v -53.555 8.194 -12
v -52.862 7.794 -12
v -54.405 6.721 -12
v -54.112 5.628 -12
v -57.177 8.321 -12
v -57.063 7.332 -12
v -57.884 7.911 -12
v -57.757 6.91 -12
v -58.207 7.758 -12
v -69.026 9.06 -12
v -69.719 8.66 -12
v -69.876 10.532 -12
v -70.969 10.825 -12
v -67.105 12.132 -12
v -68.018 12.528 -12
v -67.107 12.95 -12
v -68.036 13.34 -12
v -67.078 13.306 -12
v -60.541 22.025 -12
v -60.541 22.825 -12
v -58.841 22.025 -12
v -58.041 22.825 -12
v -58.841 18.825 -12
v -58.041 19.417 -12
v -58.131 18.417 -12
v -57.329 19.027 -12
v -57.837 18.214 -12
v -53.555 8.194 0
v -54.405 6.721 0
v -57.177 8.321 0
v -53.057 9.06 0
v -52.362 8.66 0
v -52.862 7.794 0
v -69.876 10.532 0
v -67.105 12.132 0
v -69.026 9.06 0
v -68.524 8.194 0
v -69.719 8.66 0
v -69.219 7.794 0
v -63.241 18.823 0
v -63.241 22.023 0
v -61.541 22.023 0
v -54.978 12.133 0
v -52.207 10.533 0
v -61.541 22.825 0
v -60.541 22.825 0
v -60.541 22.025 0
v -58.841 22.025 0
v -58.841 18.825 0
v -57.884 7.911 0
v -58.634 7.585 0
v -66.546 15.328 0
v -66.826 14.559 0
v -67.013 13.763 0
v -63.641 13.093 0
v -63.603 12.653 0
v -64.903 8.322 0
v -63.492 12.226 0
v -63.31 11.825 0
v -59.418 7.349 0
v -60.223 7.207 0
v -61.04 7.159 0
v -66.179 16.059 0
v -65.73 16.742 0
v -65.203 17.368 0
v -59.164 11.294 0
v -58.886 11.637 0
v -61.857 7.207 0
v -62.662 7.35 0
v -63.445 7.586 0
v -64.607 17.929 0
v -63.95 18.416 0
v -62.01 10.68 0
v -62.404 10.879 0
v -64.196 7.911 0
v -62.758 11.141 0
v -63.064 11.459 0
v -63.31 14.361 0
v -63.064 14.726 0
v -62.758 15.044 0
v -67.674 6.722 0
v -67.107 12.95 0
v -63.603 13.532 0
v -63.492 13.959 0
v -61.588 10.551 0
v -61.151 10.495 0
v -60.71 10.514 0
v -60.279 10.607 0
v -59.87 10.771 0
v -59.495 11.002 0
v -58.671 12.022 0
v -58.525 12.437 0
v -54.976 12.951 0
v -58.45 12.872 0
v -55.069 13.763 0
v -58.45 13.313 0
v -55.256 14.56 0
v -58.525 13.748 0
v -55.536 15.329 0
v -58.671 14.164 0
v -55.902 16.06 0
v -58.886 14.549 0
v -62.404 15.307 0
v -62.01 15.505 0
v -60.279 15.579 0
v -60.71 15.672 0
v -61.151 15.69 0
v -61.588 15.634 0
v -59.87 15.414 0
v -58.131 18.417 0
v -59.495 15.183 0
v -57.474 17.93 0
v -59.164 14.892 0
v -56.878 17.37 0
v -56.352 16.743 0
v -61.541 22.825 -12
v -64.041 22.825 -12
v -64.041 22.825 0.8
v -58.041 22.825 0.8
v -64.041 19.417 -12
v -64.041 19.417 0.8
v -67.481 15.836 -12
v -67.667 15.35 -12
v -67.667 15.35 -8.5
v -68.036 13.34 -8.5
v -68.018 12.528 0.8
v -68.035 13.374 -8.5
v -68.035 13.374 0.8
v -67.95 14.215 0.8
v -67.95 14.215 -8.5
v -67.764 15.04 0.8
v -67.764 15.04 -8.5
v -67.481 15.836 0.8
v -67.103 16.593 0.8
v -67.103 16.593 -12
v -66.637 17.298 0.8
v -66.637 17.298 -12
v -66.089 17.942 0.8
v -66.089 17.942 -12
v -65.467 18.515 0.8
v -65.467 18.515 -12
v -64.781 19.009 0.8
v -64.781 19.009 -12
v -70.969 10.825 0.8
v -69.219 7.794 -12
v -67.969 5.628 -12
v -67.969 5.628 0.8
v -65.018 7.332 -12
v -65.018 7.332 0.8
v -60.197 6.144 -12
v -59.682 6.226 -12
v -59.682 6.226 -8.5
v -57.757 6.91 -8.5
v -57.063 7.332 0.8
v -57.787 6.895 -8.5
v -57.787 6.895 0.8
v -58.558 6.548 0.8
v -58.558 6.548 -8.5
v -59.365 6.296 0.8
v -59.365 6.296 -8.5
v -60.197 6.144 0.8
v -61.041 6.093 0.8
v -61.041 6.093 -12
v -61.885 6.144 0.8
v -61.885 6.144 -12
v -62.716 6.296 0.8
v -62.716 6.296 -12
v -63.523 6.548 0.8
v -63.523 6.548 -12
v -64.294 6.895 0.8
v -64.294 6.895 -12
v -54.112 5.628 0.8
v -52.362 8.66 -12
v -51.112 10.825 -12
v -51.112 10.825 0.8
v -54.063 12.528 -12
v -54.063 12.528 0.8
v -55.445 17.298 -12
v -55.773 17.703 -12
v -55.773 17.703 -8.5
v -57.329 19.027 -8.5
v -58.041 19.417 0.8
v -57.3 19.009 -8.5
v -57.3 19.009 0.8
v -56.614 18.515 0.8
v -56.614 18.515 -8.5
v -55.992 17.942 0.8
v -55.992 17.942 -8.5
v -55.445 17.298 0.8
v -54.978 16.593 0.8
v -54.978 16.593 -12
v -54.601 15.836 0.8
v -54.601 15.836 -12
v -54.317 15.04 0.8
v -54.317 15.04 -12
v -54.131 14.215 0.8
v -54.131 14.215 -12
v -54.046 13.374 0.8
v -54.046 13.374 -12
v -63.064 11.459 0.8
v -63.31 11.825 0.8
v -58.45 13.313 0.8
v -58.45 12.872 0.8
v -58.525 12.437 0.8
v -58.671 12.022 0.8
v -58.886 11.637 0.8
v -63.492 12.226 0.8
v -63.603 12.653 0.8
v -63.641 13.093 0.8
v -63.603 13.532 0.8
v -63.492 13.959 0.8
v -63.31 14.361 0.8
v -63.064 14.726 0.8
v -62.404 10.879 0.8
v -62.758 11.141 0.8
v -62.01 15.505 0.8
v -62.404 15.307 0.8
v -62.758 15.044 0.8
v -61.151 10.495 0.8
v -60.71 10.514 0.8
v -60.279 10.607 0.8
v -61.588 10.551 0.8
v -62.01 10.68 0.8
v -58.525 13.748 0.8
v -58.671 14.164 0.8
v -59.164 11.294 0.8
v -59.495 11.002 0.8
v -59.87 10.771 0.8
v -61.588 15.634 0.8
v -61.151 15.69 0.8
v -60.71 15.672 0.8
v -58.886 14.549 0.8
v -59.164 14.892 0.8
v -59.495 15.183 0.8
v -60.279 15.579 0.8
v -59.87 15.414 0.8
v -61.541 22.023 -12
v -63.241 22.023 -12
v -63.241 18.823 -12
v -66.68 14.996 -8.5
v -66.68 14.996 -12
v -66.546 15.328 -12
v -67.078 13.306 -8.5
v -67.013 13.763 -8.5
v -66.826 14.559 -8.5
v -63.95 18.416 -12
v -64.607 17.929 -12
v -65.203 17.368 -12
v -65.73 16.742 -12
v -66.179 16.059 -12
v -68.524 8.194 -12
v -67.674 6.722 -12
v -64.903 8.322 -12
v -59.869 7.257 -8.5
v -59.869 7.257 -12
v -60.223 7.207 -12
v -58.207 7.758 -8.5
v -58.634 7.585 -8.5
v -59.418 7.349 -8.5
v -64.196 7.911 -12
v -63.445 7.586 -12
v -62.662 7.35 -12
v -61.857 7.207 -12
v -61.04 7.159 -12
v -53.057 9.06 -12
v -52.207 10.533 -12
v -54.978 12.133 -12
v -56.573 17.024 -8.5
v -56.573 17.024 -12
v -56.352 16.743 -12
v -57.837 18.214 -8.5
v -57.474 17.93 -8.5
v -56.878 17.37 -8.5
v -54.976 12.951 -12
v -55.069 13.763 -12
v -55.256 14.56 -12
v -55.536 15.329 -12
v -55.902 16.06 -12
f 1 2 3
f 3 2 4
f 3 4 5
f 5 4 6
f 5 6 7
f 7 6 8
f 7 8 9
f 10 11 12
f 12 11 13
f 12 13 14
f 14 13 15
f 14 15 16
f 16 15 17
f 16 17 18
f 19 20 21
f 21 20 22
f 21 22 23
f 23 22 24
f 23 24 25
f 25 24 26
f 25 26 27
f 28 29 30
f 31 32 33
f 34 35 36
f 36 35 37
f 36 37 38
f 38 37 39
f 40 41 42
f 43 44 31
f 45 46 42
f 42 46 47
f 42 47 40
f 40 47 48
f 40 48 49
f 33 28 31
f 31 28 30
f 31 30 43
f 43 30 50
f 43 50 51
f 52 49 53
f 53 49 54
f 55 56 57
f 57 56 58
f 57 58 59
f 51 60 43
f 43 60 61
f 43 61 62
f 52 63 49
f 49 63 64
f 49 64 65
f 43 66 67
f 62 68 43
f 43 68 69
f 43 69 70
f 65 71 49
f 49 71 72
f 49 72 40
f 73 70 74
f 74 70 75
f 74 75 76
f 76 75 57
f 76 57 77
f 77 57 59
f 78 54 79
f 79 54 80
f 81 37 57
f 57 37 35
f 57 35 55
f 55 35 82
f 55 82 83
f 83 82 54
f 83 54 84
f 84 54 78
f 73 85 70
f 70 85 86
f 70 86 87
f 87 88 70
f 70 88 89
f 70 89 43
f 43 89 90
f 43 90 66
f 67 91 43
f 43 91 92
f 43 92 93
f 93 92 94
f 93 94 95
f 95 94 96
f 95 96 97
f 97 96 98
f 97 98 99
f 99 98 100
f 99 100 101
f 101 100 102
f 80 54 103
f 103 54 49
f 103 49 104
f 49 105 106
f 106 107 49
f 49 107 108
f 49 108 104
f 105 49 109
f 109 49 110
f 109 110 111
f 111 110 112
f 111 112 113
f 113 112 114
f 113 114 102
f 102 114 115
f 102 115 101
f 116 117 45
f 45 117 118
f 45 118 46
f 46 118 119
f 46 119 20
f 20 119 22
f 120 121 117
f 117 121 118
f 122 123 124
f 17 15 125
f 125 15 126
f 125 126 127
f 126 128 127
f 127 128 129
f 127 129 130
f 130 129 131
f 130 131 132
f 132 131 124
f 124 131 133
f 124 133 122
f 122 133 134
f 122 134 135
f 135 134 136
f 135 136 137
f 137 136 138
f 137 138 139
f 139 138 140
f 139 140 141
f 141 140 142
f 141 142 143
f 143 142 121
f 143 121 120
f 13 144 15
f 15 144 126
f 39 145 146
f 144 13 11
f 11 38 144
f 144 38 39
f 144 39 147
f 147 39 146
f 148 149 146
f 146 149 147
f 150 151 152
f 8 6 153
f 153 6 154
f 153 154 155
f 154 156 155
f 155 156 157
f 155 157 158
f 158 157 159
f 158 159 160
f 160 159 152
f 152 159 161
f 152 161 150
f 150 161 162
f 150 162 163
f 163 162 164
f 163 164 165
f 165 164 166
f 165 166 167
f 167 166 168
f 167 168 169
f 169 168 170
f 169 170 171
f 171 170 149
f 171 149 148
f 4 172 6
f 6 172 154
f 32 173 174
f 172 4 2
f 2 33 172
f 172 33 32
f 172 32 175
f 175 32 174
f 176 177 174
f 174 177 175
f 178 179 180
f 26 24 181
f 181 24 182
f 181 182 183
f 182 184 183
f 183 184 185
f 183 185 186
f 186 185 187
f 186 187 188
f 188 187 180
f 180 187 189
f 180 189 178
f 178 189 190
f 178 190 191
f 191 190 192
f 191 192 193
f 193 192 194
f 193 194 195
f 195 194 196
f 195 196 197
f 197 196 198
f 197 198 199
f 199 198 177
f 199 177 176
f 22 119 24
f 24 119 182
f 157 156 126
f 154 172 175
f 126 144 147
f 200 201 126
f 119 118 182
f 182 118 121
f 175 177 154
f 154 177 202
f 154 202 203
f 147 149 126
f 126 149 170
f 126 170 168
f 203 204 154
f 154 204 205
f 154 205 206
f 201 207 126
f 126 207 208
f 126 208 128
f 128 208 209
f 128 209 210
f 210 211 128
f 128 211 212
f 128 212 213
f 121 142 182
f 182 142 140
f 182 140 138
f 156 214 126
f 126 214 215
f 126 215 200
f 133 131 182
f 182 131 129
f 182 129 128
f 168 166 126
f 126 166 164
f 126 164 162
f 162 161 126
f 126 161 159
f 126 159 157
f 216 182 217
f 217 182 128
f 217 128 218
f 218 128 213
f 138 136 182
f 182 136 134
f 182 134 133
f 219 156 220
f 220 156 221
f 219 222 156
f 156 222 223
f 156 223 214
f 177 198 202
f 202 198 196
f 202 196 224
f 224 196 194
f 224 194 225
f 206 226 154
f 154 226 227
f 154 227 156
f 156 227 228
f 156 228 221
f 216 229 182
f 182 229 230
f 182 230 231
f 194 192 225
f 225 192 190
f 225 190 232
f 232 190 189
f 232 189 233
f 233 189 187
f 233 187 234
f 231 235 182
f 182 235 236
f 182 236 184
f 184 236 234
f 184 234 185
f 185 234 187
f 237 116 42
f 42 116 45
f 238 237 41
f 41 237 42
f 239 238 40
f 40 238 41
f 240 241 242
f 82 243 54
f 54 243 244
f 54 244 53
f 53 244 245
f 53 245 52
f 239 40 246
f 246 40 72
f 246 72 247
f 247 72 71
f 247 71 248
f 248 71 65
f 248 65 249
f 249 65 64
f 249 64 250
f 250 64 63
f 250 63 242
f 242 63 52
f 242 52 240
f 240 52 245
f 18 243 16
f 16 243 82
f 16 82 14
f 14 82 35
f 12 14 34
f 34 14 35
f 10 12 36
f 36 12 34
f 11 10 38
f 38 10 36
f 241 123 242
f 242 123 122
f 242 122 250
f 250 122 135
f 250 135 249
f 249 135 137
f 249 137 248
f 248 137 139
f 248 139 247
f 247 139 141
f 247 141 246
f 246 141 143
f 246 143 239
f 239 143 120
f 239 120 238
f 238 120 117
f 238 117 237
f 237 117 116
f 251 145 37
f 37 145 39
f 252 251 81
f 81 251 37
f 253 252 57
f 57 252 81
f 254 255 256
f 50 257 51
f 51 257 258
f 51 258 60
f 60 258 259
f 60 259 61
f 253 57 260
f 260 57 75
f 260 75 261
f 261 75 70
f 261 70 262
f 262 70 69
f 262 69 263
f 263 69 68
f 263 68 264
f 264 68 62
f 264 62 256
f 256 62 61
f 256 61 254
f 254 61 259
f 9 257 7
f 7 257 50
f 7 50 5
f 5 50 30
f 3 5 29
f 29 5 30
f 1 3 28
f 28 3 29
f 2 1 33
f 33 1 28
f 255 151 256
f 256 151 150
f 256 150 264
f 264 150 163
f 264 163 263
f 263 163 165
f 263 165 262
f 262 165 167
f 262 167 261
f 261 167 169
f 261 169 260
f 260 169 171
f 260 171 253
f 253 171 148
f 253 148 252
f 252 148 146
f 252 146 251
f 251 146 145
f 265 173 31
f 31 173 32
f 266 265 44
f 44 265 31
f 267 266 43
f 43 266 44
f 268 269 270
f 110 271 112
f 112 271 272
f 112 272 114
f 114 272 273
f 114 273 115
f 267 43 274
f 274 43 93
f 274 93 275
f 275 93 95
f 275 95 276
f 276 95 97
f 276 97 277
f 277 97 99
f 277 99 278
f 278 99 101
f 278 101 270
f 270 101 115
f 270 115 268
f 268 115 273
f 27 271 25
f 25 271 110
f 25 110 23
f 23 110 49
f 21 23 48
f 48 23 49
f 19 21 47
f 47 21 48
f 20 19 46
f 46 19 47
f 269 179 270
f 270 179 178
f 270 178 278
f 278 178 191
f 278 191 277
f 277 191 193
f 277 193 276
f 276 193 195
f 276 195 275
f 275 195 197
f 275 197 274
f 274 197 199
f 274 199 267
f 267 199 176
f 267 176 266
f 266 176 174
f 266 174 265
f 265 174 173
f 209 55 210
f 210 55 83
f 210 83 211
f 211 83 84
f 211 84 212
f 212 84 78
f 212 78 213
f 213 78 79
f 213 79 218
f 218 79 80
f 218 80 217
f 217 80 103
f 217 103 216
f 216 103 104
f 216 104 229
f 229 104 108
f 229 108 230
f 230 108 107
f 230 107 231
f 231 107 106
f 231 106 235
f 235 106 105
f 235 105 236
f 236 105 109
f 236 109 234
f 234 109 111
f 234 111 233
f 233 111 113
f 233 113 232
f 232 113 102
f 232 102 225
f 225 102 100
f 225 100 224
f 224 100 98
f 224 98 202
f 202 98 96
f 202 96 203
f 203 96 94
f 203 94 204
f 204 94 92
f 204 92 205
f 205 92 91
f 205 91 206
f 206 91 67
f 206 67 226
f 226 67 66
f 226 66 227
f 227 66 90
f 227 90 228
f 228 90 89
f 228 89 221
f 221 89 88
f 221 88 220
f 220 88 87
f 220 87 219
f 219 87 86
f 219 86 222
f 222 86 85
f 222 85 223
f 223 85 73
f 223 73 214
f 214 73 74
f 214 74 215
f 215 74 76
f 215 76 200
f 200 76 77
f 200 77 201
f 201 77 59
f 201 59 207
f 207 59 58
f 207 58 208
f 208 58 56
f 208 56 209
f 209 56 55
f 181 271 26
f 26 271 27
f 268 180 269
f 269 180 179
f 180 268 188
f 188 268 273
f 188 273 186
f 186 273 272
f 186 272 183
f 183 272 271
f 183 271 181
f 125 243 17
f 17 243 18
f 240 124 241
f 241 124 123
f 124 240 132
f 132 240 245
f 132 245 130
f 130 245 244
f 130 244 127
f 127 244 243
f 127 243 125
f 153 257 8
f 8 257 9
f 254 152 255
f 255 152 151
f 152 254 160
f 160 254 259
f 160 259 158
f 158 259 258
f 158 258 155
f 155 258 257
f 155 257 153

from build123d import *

# Parameters (mm, degrees)
SALIENTE_EXTRUIR1_DEPTH = 0.8
SALIENTE_EXTRUIR2_START = 12
SALIENTE_EXTRUIR2_DEPTH = 12
CROQUIS3_R              = 2.6
CORTAR_EXTRUIR1_DEPTH   = 0.8
CORTAR_EXTRUIR2_DEPTH   = 3.5


with BuildPart() as part:
    # Croquis1 → Saliente-Extruir1 (new body)
    with BuildSketch(Plane.XY):
        with BuildLine():
            Line((-64.04061015, 19.417127137), (-64.04061015, 22.824622624))
            Line((-64.04061015, 22.824622624), (-58.04061015, 22.824622624))
            Line((-58.04061015, 22.824622624), (-58.04061015, 19.417127137))
            ThreePointArc((-58.04061015, 19.417127137), (-54.978432324, 16.592571816), (-54.063384575, 12.528370368))
            Line((-54.063384575, 12.528370368), (-51.11240692, 10.824622624))
            Line((-51.11240692, 10.824622624), (-54.11240692, 5.628470201))
            Line((-54.11240692, 5.628470201), (-57.063384575, 7.332217945))
            ThreePointArc((-57.063384575, 7.332217945), (-61.04061015, 6.092571816), (-65.017835725, 7.332217945))
            Line((-65.017835725, 7.332217945), (-67.96881338, 5.628470201))
            Line((-67.96881338, 5.628470201), (-70.96881338, 10.824622624))
            Line((-70.96881338, 10.824622624), (-68.017835725, 12.528370368))
            ThreePointArc((-68.017835725, 12.528370368), (-67.102787977, 16.592571816), (-64.04061015, 19.417127137))
        make_face()
    extrude(amount=SALIENTE_EXTRUIR1_DEPTH)

    # Croquis2 → Saliente-Extruir2 (add)
    with BuildSketch(Plane(origin=(0, 0, 0), x_dir=(-1, 0, 0), z_dir=(0, 0, -1)).offset(SALIENTE_EXTRUIR2_START)):
        with BuildLine():
            Line((69.71881338, 8.659559114), (70.96881338, 10.824622624))
            Line((70.96881338, 10.824622624), (68.017835725, 12.528370368))
            ThreePointArc((68.017835725, 12.528370368), (67.102787977, 16.592571816), (64.04061015, 19.417127137))
            Line((64.04061015, 19.417127137), (64.04061015, 22.824622624))
            Line((64.04061015, 22.824622624), (61.54061015, 22.824622624))
            Line((61.54061015, 22.824622624), (61.54061015, 22.022889547))
            Line((61.54061015, 22.022889547), (63.24061015, 22.022889547))
            Line((63.24061015, 22.022889547), (63.24061015, 18.822889547))
            ThreePointArc((63.24061015, 18.822889547), (66.17949039, 16.05878973), (67.104711765, 12.131802301))
            Line((67.104711765, 12.131802301), (69.875993057, 10.531802301))
            Line((69.875993057, 10.531802301), (69.025993057, 9.059559114))
            Line((69.025993057, 9.059559114), (69.71881338, 8.659559114))
        make_face()
        with BuildLine():
            Line((65.017835725, 7.332217945), (67.96881338, 5.628470201))
            Line((67.96881338, 5.628470201), (69.21881338, 7.793533711))
            Line((69.21881338, 7.793533711), (68.524492169, 8.194400249))
            Line((68.524492169, 8.194400249), (67.674492169, 6.722157062))
            Line((67.674492169, 6.722157062), (64.903210877, 8.322157062))
            ThreePointArc((64.903210877, 8.322157062), (61.039990097, 7.159062025), (57.176508535, 8.321290524))
            Line((57.176508535, 8.321290524), (54.405227243, 6.721290524))
            Line((54.405227243, 6.721290524), (53.555227243, 8.193533711))
            Line((53.555227243, 8.193533711), (52.86240692, 7.793533711))
            Line((52.86240692, 7.793533711), (54.11240692, 5.628470201))
            Line((54.11240692, 5.628470201), (57.063384575, 7.332217945))
            ThreePointArc((57.063384575, 7.332217945), (61.04061015, 6.092571816), (65.017835725, 7.332217945))
        make_face()
        with BuildLine():
            Line((54.063384575, 12.528370368), (51.11240692, 10.824622624))
            Line((51.11240692, 10.824622624), (52.36240692, 8.659559114))
            Line((52.36240692, 8.659559114), (53.056728131, 9.060425653))
            Line((53.056728131, 9.060425653), (52.206728131, 10.532668839))
            Line((52.206728131, 10.532668839), (54.978009423, 12.132668839))
            ThreePointArc((54.978009423, 12.132668839), (55.902349964, 16.059863694), (58.84061015, 18.824622624))
            Line((58.84061015, 18.824622624), (58.84061015, 22.024622624))
            Line((58.84061015, 22.024622624), (60.54061015, 22.024622624))
            Line((60.54061015, 22.024622624), (60.54061015, 22.824622624))
            Line((60.54061015, 22.824622624), (58.04061015, 22.824622624))
            Line((58.04061015, 22.824622624), (58.04061015, 19.417127137))
            ThreePointArc((58.04061015, 19.417127137), (54.978432324, 16.592571816), (54.063384575, 12.528370368))
        make_face()
    extrude(amount=-SALIENTE_EXTRUIR2_DEPTH)

    # Croquis3 → Cortar-Extruir1 (cut)
    with BuildSketch(Plane(origin=(0, 0, 0), x_dir=(-1, 0, 0), z_dir=(0, 0, -1))):
        with Locations((61.04061015, 13.092571816)):
            Circle(CROQUIS3_R)
    extrude(amount=-CORTAR_EXTRUIR1_DEPTH, mode=Mode.SUBTRACT)

    # Croquis4 → Cortar-Extruir2 (cut)
    with BuildSketch(Plane(origin=(0, 0, -12), x_dir=(-1, 0, 0), z_dir=(0, 0, -1))):
        with BuildLine():
            Line((57.837187447, 18.214022309), (57.328521133, 19.027249156))
            ThreePointArc((57.328521133, 19.027249156), (56.502144155, 18.421955122), (55.772953312, 17.70253835))
            Line((55.772953312, 17.70253835), (56.572877184, 17.024384005))
            ThreePointArc((56.572877184, 17.024384005), (57.168010519, 17.658548761), (57.837187447, 18.214022309))
        make_face()
        with BuildLine():
            Line((67.077627732, 13.30609201), (68.036235998, 13.339996536))
            ThreePointArc((68.036235998, 13.339996536), (67.925224476, 14.358307009), (67.666786697, 15.34951319))
            Line((67.666786697, 15.34951319), (66.679525872, 14.995835968))
            ThreePointArc((66.679525872, 14.995835968), (66.931161993, 14.163353003), (67.077627732, 13.30609201))
        make_face()
        with BuildLine():
            Line((58.207015271, 7.757601131), (57.757073319, 6.910469757))
            ThreePointArc((57.757073319, 6.910469757), (58.694461819, 6.497453318), (59.682090441, 6.22566391))
            Line((59.682090441, 6.22566391), (59.869427395, 7.257495476))
            ThreePointArc((59.869427395, 7.257495476), (59.022657939, 7.455813685), (58.207015271, 7.757601131))
        make_face()
    extrude(amount=-CORTAR_EXTRUIR2_DEPTH, mode=Mode.SUBTRACT)


solid = part.part
